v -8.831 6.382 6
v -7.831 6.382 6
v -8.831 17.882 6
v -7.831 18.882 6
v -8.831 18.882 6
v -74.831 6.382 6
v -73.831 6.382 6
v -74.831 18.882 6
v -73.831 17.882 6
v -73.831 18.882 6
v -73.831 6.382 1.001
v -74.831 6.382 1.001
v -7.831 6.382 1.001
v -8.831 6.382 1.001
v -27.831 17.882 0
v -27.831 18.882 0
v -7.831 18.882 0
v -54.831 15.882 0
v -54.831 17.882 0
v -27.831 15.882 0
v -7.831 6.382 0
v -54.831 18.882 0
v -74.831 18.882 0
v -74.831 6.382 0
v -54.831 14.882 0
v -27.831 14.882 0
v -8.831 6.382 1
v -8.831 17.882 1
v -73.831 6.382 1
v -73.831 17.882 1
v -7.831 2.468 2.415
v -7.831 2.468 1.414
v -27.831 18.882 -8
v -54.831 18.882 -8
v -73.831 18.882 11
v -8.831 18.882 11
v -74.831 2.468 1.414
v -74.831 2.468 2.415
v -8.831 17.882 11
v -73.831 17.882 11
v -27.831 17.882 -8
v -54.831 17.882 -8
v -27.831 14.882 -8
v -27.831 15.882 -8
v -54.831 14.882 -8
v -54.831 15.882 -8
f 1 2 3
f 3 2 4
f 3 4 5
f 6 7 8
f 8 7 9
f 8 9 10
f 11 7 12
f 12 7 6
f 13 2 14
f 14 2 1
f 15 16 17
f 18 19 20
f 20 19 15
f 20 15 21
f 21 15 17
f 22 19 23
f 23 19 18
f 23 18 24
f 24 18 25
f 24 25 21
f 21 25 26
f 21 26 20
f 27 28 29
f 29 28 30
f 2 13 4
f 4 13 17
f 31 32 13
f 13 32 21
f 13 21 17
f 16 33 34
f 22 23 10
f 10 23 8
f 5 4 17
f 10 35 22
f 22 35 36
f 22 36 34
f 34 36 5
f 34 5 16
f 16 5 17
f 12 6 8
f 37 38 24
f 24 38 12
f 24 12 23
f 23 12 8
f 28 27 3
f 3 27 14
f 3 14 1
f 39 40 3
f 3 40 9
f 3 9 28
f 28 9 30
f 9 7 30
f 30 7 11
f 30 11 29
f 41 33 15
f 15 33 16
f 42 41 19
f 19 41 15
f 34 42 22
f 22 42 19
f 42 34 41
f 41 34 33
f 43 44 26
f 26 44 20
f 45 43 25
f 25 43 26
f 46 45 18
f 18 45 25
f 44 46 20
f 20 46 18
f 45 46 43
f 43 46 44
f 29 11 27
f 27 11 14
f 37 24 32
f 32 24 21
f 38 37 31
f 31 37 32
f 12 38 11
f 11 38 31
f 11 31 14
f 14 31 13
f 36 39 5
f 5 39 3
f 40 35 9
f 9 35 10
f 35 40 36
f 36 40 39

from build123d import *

# Parameters (mm, degrees)
CROQUIS1_W              = 65
CROQUIS1_H              = 10.5
SALIENTE_EXTRUIR1_DEPTH = 1
CROQUIS5_W              = 67
CROQUIS5_H              = 12.5
CROQUIS5_W_2            = 65
CROQUIS5_H_2            = 10.5
SALIENTE_EXTRUIR3_DEPTH = 6
CROQUIS6_W              = 27
CROQUIS6_H              = 1
SALIENTE_EXTRUIR4_DEPTH = 8
CROQUIS7_W              = 65
CROQUIS7_H              = 1
CORTAR_EXTRUIR1_DEPTH   = 5
SALIENTE_EXTRUIR5_DEPTH = 67
CROQUIS9_W              = 65
CROQUIS9_H              = 1
SALIENTE_EXTRUIR6_DEPTH = 5


with BuildPart() as part:
    # Croquis1 → Saliente-Extruir1 (new body)
    with BuildSketch(Plane.XY):
        with Locations((-41.330573237, 12.632352941)):
            Rectangle(CROQUIS1_W, CROQUIS1_H)
    extrude(amount=SALIENTE_EXTRUIR1_DEPTH)

    # Croquis5 → Saliente-Extruir3 (add)
    with BuildSketch(Plane(origin=(0, 0, 0), x_dir=(-1, 0, 0), z_dir=(0, 0, -1))):
        with Locations((41.330573237, 12.632352941)):
            Rectangle(CROQUIS5_W, CROQUIS5_H)
        with Locations((41.330573237, 12.632352941)):
            Rectangle(CROQUIS5_W_2, CROQUIS5_H_2, mode=Mode.SUBTRACT)
    extrude(amount=-SALIENTE_EXTRUIR3_DEPTH)

    # Croquis6 → Saliente-Extruir4 (add)
    with BuildSketch(Plane(origin=(0, 0, 0), x_dir=(-1, 0, 0), z_dir=(0, 0, -1))):
        with Locations((41.330573237, 18.382352941)):
            Rectangle(CROQUIS6_W, CROQUIS6_H)
        with Locations((41.330573237, 15.382352941)):
            Rectangle(CROQUIS6_W, CROQUIS6_H)
    extrude(amount=SALIENTE_EXTRUIR4_DEPTH)

    # Croquis7 → Cortar-Extruir1 (cut)
    with BuildSketch(Plane.XY.offset(6)):
        with Locations((-41.330573237, 6.882352941)):
            Rectangle(CROQUIS7_W, CROQUIS7_H)
    extrude(amount=-CORTAR_EXTRUIR1_DEPTH, mode=Mode.SUBTRACT)

    # Croquis8 → Saliente-Extruir5 (add)
    with BuildSketch(Plane(origin=(-7.830573237, 0, 0), x_dir=(0, 0, -1), z_dir=(1, 0, 0))):
        Polygon((0, 6.382352941), (-1.000715145, 6.382352941), (-2.414928707, 2.468139379), (-1.414213562, 2.468139379), align=None)
    extrude(amount=-SALIENTE_EXTRUIR5_DEPTH)

    # Croquis9 → Saliente-Extruir6 (add)
    with BuildSketch(Plane.XY.offset(6)):
        with Locations((-41.330573237, 18.382352941)):
            Rectangle(CROQUIS9_W, CROQUIS9_H)
    extrude(amount=SALIENTE_EXTRUIR6_DEPTH)


solid = part.part
